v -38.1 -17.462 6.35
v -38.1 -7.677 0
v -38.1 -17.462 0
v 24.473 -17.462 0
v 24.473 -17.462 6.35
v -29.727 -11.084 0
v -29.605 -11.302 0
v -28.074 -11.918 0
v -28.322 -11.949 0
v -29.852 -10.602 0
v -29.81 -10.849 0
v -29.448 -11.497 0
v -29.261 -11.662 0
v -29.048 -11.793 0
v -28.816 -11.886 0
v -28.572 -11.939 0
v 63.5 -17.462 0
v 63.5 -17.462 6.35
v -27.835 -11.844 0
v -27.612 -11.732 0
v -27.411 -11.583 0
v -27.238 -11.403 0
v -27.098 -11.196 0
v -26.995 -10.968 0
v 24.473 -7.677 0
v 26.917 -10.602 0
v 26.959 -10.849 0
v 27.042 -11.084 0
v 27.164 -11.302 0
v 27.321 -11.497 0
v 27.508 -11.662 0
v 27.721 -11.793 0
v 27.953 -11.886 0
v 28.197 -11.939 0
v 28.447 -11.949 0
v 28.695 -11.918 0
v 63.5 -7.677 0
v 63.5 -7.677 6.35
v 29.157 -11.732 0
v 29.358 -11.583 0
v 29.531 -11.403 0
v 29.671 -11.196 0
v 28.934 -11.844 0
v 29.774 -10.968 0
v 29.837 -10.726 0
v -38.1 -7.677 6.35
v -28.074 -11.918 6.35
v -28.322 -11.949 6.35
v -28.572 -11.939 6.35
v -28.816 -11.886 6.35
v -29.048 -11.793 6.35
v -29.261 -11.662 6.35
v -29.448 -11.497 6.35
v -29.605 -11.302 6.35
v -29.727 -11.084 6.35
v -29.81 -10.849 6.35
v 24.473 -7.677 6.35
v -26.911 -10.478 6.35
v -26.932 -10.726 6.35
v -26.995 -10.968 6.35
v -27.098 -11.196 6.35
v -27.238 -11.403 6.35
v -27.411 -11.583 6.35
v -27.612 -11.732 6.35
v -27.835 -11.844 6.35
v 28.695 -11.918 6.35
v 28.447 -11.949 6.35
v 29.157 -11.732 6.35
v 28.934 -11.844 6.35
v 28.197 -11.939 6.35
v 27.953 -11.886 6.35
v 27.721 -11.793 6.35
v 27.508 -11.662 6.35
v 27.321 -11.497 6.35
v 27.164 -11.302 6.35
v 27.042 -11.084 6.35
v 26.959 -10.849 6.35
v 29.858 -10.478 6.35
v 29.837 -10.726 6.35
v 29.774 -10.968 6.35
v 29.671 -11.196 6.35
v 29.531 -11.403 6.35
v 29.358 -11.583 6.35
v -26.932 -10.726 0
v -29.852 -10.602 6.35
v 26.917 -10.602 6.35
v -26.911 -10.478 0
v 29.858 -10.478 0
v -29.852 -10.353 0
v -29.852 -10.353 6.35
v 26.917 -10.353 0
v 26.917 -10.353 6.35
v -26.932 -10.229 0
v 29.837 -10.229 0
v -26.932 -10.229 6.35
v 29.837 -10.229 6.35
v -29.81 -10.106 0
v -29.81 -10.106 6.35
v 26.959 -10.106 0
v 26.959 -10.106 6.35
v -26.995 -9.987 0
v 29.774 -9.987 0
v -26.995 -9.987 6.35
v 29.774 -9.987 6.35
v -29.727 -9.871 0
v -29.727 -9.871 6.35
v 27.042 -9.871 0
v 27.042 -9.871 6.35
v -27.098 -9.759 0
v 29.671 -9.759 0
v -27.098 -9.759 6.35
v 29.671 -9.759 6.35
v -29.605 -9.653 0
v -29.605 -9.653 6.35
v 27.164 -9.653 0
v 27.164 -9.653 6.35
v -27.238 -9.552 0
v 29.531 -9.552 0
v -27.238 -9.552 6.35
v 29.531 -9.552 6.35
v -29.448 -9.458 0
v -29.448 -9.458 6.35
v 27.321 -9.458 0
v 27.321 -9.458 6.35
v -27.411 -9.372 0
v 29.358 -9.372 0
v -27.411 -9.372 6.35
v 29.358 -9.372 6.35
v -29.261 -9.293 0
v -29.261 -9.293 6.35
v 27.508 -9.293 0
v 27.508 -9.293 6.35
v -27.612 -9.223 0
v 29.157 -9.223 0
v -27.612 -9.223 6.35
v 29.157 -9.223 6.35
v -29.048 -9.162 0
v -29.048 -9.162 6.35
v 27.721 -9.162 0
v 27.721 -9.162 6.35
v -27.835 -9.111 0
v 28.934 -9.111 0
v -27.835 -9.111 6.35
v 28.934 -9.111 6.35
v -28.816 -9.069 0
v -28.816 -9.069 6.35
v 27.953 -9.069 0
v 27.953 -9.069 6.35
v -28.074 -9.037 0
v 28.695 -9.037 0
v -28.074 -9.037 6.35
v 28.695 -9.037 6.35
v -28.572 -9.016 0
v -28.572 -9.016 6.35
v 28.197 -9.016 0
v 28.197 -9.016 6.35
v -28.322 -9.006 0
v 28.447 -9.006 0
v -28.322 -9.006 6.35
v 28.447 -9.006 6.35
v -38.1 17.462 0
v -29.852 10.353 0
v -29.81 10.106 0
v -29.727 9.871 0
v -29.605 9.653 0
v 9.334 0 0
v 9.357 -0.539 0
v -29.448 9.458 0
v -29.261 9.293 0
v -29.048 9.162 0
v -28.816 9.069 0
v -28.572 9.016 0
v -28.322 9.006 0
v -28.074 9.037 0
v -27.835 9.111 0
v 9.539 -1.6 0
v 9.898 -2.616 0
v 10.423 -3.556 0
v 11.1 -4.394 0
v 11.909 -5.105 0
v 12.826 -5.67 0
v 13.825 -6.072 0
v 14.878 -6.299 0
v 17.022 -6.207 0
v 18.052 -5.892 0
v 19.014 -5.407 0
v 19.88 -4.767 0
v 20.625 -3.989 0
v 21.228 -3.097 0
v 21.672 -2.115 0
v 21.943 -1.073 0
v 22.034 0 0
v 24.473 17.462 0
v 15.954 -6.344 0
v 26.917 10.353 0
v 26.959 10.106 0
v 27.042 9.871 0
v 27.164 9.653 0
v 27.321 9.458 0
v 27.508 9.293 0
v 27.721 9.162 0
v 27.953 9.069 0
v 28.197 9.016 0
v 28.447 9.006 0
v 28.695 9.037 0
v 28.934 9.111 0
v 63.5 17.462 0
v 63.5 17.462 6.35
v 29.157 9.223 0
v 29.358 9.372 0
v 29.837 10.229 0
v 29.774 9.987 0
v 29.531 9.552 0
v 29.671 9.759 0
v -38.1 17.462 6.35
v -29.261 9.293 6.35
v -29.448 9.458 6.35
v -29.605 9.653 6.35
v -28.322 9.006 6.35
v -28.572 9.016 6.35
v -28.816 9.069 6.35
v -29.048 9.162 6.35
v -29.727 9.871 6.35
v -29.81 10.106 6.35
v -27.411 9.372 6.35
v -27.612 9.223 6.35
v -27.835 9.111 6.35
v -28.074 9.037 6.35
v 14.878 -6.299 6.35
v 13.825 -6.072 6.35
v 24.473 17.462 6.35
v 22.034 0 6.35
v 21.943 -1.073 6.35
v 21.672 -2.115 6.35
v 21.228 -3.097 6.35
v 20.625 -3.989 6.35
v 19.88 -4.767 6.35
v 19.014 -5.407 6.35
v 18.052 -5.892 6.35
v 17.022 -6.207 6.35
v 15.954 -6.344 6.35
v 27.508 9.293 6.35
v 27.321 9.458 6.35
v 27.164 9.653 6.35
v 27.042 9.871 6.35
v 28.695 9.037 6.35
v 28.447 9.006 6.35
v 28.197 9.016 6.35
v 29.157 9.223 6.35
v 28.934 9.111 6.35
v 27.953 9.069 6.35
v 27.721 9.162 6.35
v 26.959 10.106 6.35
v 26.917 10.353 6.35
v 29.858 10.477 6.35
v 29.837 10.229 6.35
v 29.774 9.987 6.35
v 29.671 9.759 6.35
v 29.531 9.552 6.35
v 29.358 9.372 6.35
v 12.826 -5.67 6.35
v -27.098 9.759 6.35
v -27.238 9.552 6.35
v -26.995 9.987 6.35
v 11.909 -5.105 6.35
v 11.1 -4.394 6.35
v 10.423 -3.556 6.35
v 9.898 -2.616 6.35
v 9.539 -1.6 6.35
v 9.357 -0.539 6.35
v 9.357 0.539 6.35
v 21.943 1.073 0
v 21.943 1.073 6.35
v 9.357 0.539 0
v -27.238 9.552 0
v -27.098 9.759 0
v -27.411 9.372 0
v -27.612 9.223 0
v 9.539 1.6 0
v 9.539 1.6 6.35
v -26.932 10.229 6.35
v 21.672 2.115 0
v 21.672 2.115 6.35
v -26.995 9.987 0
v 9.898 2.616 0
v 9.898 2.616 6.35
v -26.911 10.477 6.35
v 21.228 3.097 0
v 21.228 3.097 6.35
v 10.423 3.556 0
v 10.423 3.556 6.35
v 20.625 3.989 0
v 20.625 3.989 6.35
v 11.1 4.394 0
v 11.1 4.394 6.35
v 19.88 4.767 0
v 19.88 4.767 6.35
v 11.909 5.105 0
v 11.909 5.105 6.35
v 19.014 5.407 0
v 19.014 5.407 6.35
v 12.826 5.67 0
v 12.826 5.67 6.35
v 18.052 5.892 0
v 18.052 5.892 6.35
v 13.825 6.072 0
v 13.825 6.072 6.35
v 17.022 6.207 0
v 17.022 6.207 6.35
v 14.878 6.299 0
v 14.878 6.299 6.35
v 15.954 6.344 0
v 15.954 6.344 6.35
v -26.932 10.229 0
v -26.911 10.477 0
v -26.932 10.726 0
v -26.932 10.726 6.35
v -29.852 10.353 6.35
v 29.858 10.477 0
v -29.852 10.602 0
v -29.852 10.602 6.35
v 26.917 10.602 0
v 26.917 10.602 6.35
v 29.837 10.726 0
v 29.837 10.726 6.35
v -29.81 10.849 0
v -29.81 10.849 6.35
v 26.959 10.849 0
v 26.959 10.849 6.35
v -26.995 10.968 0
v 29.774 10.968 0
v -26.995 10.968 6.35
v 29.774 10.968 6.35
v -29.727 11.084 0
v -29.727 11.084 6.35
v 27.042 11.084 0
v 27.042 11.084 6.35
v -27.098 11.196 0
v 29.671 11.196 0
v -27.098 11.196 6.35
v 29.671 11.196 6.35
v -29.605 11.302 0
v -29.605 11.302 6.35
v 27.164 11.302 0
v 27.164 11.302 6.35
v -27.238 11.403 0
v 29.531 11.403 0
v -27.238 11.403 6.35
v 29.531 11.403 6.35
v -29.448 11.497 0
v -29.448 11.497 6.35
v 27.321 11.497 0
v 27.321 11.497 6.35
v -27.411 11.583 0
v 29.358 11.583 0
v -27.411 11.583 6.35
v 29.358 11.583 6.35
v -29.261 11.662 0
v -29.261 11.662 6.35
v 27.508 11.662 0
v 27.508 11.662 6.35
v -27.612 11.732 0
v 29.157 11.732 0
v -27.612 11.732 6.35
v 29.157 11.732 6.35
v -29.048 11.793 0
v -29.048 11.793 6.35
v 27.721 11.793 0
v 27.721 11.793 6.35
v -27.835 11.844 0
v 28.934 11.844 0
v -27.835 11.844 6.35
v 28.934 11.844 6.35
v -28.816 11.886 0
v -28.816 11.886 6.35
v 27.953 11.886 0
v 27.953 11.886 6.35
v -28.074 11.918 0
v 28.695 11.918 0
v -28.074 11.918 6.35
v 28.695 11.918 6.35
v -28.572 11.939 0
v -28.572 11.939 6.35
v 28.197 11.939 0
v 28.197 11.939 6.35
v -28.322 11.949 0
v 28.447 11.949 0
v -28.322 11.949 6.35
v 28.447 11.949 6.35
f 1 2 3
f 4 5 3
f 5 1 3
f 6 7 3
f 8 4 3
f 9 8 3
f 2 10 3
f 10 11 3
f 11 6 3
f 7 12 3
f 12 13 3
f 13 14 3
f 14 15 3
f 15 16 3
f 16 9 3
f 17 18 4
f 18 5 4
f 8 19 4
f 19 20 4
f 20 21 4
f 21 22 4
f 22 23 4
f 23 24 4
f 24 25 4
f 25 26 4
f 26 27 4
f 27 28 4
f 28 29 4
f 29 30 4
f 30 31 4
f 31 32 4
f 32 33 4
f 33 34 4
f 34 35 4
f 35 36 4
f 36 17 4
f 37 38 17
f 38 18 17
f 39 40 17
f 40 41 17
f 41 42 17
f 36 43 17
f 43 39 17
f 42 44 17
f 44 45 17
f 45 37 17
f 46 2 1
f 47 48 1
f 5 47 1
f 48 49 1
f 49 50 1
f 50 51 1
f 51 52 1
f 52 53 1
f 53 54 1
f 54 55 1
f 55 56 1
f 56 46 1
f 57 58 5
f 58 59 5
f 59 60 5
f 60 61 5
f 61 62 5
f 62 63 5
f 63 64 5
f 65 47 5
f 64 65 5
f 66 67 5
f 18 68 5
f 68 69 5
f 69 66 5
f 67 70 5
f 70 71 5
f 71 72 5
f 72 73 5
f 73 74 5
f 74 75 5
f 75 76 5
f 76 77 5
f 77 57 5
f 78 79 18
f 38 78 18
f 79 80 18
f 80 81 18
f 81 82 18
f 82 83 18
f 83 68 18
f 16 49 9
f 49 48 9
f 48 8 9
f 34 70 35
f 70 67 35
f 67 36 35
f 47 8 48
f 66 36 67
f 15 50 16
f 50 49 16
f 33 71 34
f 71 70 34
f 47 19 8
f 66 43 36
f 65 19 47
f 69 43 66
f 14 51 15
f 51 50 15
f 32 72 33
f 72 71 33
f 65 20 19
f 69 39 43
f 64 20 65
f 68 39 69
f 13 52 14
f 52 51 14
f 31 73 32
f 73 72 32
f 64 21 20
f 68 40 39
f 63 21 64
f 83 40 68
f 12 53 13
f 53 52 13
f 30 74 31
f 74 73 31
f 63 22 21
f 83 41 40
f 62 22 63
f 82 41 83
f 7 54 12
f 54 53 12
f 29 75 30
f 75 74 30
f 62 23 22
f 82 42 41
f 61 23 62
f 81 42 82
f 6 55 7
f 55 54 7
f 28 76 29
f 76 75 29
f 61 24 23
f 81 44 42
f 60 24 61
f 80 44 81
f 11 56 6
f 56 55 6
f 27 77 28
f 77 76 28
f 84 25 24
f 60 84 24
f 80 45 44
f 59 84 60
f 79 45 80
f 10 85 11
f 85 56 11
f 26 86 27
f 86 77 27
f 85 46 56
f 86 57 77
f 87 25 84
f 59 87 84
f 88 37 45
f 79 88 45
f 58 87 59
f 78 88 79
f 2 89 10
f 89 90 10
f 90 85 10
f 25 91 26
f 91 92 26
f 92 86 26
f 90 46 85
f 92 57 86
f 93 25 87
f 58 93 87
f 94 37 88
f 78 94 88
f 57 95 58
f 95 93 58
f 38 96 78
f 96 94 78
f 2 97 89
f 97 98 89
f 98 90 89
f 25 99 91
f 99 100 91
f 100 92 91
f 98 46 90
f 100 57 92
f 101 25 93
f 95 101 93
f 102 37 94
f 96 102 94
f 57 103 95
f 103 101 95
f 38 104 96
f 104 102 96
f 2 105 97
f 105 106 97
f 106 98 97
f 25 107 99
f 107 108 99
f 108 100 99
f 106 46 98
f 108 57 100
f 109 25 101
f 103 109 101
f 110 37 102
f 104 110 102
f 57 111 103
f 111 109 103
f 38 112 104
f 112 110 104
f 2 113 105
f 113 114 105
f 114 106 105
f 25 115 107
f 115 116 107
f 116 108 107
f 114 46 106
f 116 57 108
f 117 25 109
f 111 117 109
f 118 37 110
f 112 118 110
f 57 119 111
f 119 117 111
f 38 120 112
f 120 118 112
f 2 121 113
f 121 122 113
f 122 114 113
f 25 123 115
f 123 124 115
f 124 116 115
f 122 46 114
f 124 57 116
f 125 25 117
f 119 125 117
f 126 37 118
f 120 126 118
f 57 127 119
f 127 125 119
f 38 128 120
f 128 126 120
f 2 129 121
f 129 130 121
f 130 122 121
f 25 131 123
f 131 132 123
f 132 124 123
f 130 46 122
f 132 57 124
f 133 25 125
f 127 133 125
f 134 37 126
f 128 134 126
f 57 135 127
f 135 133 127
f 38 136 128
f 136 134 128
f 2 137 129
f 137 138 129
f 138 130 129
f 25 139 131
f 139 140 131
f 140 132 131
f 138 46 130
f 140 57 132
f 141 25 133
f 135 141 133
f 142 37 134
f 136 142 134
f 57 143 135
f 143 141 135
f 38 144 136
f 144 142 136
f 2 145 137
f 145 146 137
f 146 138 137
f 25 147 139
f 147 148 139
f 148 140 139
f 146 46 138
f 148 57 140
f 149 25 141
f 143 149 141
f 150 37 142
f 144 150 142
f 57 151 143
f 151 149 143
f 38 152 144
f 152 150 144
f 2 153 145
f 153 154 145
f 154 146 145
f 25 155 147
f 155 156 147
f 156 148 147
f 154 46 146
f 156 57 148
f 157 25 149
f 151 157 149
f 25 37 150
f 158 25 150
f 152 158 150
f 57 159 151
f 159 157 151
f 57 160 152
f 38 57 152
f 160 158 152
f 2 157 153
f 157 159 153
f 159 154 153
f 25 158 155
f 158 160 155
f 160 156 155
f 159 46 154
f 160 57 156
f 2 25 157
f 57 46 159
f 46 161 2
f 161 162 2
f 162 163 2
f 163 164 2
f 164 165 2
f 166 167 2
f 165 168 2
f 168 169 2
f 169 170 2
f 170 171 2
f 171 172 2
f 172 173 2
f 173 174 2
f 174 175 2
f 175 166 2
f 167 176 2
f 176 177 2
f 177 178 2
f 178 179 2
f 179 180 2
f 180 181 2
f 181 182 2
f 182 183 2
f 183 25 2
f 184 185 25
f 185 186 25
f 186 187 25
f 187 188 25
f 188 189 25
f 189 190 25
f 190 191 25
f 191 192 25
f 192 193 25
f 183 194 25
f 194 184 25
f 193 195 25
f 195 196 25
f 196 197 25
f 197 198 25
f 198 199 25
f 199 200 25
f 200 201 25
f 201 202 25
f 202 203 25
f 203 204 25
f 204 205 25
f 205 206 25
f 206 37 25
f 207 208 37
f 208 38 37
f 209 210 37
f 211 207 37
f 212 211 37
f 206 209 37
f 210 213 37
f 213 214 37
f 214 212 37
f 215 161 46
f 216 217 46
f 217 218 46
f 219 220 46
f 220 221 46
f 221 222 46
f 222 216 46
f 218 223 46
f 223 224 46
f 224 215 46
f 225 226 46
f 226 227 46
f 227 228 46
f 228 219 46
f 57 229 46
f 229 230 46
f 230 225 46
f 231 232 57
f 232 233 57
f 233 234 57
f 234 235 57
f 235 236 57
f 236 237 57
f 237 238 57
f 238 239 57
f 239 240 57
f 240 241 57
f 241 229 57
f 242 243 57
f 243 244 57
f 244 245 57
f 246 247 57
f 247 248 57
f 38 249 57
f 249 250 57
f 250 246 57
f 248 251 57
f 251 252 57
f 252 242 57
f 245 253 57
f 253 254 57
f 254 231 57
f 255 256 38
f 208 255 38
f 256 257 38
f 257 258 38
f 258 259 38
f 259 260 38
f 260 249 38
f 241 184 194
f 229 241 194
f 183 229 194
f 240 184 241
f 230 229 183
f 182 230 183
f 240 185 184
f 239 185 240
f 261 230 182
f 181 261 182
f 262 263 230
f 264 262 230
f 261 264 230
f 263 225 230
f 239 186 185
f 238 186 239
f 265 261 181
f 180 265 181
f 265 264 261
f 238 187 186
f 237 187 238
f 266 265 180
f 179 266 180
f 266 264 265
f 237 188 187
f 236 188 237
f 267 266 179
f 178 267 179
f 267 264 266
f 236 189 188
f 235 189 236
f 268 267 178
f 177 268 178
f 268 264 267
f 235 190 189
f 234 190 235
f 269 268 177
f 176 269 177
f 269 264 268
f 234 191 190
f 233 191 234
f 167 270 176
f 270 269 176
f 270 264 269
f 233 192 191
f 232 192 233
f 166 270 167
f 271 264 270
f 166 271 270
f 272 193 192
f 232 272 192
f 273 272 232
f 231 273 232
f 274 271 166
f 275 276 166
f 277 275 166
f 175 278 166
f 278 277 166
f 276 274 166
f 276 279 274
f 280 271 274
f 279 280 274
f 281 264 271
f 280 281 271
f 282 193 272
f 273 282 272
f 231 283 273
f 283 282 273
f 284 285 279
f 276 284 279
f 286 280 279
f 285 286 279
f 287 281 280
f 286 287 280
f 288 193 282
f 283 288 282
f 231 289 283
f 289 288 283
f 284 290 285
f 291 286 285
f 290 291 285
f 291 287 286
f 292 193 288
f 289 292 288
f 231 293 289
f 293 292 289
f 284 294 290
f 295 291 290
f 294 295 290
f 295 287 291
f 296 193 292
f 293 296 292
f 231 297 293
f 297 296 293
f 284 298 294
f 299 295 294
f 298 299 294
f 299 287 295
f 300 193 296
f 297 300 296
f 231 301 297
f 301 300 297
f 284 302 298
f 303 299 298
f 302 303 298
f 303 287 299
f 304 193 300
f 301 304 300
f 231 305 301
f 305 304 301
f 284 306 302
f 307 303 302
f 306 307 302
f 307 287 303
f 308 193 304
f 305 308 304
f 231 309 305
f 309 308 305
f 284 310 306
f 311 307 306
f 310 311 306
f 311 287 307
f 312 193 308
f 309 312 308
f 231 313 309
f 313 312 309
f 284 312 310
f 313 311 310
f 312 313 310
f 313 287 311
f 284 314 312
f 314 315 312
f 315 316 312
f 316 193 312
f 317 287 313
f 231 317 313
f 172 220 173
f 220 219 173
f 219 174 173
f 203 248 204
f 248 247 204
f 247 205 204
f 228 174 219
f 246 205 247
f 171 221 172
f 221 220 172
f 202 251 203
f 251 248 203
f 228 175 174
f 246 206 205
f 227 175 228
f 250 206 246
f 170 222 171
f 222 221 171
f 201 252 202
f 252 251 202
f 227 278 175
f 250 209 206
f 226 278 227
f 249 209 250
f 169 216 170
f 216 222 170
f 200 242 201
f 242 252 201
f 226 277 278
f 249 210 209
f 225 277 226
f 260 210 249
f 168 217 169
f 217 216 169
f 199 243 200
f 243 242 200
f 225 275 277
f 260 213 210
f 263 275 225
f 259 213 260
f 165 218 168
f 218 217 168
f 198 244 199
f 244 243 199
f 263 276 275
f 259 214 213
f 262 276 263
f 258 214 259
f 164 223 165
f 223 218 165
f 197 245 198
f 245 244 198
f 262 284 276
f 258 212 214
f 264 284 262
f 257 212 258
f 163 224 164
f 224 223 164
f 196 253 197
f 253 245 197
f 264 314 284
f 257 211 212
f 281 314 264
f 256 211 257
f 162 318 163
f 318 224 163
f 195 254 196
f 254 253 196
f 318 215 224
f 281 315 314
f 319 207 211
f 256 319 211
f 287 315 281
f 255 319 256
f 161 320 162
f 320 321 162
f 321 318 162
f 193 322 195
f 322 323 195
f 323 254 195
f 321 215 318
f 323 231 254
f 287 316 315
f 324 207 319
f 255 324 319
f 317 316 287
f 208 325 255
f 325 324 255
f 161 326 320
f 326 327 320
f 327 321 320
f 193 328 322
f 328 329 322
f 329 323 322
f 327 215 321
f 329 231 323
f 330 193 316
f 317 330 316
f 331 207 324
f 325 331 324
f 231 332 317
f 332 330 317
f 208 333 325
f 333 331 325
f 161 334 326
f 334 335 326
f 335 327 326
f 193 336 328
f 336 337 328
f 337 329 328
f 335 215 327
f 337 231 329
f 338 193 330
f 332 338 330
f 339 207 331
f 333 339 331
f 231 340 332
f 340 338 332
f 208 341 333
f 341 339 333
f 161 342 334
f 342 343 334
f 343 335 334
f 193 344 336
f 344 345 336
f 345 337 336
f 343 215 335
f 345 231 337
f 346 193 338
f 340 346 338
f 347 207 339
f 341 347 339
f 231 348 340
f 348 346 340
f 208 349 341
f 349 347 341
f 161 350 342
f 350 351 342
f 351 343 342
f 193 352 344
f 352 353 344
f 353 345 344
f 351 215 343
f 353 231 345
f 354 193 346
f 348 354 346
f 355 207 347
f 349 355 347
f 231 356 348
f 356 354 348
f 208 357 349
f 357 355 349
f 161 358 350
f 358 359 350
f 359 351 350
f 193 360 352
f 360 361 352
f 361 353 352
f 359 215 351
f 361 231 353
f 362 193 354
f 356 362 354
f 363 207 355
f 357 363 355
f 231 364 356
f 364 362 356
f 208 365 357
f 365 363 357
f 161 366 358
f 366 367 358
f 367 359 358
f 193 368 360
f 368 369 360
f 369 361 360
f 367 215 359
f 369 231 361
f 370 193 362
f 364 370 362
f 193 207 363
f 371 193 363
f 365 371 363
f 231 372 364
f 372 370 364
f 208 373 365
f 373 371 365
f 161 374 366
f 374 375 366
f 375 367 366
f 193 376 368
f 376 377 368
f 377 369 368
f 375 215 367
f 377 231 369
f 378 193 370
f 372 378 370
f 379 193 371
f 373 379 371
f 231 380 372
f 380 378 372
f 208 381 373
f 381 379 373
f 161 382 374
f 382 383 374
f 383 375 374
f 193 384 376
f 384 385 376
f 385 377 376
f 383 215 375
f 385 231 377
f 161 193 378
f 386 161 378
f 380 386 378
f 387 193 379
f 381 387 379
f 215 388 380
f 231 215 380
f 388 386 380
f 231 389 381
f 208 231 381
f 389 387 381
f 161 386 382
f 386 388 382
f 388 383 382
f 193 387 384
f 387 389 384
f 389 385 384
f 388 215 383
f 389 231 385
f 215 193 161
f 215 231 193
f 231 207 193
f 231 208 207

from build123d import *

# Parameters (mm, degrees)
SKETCH1_W               = 101.6
SKETCH1_H               = 34.925
BOSS_EXTRUDE1_DEPTH     = 6.35
ADVANCEDHOLE1_OUTLINE_R = 1.4732
ADVANCEDHOLE1_DEPTH     = 6.35
CUT_EXTRUDE1_REACH      = 68.163
SKETCH5_R               = 6.35


# Read off the part's stored shape, not the designer's step: AdvancedHole1
with BuildPart() as part:
    # Sketch1 → Boss-Extrude1 (new body)
    with BuildSketch(Plane.XY):
        with Locations((12.7, 0)):
            Rectangle(SKETCH1_W, SKETCH1_H)
    extrude(amount=BOSS_EXTRUDE1_DEPTH)

    # AdvancedHole1 outline → AdvancedHole1 (cut)
    with BuildSketch(Plane.XY):
        with Locations((28.3845, 10.4775)):
            Circle(ADVANCEDHOLE1_OUTLINE_R)
        with Locations((28.3845, -10.4775)):
            Circle(ADVANCEDHOLE1_OUTLINE_R)
        with Locations((-28.3845, -10.4775)):
            Circle(ADVANCEDHOLE1_OUTLINE_R)
        with Locations((-28.3845, 10.4775)):
            Circle(ADVANCEDHOLE1_OUTLINE_R)
    extrude(amount=ADVANCEDHOLE1_DEPTH, mode=Mode.SUBTRACT)

    # Sketch5 → Cut-Extrude1 (cut, up to next)
    with BuildSketch(Plane.XY.offset(6.35), mode=Mode.PRIVATE) as cut_extrude1_sk1:
        with Locations((15.6845, 0)):
            Circle(SKETCH5_R)
    cut_extrude1_tool1 = extrude(cut_extrude1_sk1.sketch, amount=-CUT_EXTRUDE1_REACH, mode=Mode.PRIVATE) & part.part
    add(cut_extrude1_tool1.solids().sort_by_distance((15.6845, 0, 6.35))[0], mode=Mode.SUBTRACT)


solid = part.part
